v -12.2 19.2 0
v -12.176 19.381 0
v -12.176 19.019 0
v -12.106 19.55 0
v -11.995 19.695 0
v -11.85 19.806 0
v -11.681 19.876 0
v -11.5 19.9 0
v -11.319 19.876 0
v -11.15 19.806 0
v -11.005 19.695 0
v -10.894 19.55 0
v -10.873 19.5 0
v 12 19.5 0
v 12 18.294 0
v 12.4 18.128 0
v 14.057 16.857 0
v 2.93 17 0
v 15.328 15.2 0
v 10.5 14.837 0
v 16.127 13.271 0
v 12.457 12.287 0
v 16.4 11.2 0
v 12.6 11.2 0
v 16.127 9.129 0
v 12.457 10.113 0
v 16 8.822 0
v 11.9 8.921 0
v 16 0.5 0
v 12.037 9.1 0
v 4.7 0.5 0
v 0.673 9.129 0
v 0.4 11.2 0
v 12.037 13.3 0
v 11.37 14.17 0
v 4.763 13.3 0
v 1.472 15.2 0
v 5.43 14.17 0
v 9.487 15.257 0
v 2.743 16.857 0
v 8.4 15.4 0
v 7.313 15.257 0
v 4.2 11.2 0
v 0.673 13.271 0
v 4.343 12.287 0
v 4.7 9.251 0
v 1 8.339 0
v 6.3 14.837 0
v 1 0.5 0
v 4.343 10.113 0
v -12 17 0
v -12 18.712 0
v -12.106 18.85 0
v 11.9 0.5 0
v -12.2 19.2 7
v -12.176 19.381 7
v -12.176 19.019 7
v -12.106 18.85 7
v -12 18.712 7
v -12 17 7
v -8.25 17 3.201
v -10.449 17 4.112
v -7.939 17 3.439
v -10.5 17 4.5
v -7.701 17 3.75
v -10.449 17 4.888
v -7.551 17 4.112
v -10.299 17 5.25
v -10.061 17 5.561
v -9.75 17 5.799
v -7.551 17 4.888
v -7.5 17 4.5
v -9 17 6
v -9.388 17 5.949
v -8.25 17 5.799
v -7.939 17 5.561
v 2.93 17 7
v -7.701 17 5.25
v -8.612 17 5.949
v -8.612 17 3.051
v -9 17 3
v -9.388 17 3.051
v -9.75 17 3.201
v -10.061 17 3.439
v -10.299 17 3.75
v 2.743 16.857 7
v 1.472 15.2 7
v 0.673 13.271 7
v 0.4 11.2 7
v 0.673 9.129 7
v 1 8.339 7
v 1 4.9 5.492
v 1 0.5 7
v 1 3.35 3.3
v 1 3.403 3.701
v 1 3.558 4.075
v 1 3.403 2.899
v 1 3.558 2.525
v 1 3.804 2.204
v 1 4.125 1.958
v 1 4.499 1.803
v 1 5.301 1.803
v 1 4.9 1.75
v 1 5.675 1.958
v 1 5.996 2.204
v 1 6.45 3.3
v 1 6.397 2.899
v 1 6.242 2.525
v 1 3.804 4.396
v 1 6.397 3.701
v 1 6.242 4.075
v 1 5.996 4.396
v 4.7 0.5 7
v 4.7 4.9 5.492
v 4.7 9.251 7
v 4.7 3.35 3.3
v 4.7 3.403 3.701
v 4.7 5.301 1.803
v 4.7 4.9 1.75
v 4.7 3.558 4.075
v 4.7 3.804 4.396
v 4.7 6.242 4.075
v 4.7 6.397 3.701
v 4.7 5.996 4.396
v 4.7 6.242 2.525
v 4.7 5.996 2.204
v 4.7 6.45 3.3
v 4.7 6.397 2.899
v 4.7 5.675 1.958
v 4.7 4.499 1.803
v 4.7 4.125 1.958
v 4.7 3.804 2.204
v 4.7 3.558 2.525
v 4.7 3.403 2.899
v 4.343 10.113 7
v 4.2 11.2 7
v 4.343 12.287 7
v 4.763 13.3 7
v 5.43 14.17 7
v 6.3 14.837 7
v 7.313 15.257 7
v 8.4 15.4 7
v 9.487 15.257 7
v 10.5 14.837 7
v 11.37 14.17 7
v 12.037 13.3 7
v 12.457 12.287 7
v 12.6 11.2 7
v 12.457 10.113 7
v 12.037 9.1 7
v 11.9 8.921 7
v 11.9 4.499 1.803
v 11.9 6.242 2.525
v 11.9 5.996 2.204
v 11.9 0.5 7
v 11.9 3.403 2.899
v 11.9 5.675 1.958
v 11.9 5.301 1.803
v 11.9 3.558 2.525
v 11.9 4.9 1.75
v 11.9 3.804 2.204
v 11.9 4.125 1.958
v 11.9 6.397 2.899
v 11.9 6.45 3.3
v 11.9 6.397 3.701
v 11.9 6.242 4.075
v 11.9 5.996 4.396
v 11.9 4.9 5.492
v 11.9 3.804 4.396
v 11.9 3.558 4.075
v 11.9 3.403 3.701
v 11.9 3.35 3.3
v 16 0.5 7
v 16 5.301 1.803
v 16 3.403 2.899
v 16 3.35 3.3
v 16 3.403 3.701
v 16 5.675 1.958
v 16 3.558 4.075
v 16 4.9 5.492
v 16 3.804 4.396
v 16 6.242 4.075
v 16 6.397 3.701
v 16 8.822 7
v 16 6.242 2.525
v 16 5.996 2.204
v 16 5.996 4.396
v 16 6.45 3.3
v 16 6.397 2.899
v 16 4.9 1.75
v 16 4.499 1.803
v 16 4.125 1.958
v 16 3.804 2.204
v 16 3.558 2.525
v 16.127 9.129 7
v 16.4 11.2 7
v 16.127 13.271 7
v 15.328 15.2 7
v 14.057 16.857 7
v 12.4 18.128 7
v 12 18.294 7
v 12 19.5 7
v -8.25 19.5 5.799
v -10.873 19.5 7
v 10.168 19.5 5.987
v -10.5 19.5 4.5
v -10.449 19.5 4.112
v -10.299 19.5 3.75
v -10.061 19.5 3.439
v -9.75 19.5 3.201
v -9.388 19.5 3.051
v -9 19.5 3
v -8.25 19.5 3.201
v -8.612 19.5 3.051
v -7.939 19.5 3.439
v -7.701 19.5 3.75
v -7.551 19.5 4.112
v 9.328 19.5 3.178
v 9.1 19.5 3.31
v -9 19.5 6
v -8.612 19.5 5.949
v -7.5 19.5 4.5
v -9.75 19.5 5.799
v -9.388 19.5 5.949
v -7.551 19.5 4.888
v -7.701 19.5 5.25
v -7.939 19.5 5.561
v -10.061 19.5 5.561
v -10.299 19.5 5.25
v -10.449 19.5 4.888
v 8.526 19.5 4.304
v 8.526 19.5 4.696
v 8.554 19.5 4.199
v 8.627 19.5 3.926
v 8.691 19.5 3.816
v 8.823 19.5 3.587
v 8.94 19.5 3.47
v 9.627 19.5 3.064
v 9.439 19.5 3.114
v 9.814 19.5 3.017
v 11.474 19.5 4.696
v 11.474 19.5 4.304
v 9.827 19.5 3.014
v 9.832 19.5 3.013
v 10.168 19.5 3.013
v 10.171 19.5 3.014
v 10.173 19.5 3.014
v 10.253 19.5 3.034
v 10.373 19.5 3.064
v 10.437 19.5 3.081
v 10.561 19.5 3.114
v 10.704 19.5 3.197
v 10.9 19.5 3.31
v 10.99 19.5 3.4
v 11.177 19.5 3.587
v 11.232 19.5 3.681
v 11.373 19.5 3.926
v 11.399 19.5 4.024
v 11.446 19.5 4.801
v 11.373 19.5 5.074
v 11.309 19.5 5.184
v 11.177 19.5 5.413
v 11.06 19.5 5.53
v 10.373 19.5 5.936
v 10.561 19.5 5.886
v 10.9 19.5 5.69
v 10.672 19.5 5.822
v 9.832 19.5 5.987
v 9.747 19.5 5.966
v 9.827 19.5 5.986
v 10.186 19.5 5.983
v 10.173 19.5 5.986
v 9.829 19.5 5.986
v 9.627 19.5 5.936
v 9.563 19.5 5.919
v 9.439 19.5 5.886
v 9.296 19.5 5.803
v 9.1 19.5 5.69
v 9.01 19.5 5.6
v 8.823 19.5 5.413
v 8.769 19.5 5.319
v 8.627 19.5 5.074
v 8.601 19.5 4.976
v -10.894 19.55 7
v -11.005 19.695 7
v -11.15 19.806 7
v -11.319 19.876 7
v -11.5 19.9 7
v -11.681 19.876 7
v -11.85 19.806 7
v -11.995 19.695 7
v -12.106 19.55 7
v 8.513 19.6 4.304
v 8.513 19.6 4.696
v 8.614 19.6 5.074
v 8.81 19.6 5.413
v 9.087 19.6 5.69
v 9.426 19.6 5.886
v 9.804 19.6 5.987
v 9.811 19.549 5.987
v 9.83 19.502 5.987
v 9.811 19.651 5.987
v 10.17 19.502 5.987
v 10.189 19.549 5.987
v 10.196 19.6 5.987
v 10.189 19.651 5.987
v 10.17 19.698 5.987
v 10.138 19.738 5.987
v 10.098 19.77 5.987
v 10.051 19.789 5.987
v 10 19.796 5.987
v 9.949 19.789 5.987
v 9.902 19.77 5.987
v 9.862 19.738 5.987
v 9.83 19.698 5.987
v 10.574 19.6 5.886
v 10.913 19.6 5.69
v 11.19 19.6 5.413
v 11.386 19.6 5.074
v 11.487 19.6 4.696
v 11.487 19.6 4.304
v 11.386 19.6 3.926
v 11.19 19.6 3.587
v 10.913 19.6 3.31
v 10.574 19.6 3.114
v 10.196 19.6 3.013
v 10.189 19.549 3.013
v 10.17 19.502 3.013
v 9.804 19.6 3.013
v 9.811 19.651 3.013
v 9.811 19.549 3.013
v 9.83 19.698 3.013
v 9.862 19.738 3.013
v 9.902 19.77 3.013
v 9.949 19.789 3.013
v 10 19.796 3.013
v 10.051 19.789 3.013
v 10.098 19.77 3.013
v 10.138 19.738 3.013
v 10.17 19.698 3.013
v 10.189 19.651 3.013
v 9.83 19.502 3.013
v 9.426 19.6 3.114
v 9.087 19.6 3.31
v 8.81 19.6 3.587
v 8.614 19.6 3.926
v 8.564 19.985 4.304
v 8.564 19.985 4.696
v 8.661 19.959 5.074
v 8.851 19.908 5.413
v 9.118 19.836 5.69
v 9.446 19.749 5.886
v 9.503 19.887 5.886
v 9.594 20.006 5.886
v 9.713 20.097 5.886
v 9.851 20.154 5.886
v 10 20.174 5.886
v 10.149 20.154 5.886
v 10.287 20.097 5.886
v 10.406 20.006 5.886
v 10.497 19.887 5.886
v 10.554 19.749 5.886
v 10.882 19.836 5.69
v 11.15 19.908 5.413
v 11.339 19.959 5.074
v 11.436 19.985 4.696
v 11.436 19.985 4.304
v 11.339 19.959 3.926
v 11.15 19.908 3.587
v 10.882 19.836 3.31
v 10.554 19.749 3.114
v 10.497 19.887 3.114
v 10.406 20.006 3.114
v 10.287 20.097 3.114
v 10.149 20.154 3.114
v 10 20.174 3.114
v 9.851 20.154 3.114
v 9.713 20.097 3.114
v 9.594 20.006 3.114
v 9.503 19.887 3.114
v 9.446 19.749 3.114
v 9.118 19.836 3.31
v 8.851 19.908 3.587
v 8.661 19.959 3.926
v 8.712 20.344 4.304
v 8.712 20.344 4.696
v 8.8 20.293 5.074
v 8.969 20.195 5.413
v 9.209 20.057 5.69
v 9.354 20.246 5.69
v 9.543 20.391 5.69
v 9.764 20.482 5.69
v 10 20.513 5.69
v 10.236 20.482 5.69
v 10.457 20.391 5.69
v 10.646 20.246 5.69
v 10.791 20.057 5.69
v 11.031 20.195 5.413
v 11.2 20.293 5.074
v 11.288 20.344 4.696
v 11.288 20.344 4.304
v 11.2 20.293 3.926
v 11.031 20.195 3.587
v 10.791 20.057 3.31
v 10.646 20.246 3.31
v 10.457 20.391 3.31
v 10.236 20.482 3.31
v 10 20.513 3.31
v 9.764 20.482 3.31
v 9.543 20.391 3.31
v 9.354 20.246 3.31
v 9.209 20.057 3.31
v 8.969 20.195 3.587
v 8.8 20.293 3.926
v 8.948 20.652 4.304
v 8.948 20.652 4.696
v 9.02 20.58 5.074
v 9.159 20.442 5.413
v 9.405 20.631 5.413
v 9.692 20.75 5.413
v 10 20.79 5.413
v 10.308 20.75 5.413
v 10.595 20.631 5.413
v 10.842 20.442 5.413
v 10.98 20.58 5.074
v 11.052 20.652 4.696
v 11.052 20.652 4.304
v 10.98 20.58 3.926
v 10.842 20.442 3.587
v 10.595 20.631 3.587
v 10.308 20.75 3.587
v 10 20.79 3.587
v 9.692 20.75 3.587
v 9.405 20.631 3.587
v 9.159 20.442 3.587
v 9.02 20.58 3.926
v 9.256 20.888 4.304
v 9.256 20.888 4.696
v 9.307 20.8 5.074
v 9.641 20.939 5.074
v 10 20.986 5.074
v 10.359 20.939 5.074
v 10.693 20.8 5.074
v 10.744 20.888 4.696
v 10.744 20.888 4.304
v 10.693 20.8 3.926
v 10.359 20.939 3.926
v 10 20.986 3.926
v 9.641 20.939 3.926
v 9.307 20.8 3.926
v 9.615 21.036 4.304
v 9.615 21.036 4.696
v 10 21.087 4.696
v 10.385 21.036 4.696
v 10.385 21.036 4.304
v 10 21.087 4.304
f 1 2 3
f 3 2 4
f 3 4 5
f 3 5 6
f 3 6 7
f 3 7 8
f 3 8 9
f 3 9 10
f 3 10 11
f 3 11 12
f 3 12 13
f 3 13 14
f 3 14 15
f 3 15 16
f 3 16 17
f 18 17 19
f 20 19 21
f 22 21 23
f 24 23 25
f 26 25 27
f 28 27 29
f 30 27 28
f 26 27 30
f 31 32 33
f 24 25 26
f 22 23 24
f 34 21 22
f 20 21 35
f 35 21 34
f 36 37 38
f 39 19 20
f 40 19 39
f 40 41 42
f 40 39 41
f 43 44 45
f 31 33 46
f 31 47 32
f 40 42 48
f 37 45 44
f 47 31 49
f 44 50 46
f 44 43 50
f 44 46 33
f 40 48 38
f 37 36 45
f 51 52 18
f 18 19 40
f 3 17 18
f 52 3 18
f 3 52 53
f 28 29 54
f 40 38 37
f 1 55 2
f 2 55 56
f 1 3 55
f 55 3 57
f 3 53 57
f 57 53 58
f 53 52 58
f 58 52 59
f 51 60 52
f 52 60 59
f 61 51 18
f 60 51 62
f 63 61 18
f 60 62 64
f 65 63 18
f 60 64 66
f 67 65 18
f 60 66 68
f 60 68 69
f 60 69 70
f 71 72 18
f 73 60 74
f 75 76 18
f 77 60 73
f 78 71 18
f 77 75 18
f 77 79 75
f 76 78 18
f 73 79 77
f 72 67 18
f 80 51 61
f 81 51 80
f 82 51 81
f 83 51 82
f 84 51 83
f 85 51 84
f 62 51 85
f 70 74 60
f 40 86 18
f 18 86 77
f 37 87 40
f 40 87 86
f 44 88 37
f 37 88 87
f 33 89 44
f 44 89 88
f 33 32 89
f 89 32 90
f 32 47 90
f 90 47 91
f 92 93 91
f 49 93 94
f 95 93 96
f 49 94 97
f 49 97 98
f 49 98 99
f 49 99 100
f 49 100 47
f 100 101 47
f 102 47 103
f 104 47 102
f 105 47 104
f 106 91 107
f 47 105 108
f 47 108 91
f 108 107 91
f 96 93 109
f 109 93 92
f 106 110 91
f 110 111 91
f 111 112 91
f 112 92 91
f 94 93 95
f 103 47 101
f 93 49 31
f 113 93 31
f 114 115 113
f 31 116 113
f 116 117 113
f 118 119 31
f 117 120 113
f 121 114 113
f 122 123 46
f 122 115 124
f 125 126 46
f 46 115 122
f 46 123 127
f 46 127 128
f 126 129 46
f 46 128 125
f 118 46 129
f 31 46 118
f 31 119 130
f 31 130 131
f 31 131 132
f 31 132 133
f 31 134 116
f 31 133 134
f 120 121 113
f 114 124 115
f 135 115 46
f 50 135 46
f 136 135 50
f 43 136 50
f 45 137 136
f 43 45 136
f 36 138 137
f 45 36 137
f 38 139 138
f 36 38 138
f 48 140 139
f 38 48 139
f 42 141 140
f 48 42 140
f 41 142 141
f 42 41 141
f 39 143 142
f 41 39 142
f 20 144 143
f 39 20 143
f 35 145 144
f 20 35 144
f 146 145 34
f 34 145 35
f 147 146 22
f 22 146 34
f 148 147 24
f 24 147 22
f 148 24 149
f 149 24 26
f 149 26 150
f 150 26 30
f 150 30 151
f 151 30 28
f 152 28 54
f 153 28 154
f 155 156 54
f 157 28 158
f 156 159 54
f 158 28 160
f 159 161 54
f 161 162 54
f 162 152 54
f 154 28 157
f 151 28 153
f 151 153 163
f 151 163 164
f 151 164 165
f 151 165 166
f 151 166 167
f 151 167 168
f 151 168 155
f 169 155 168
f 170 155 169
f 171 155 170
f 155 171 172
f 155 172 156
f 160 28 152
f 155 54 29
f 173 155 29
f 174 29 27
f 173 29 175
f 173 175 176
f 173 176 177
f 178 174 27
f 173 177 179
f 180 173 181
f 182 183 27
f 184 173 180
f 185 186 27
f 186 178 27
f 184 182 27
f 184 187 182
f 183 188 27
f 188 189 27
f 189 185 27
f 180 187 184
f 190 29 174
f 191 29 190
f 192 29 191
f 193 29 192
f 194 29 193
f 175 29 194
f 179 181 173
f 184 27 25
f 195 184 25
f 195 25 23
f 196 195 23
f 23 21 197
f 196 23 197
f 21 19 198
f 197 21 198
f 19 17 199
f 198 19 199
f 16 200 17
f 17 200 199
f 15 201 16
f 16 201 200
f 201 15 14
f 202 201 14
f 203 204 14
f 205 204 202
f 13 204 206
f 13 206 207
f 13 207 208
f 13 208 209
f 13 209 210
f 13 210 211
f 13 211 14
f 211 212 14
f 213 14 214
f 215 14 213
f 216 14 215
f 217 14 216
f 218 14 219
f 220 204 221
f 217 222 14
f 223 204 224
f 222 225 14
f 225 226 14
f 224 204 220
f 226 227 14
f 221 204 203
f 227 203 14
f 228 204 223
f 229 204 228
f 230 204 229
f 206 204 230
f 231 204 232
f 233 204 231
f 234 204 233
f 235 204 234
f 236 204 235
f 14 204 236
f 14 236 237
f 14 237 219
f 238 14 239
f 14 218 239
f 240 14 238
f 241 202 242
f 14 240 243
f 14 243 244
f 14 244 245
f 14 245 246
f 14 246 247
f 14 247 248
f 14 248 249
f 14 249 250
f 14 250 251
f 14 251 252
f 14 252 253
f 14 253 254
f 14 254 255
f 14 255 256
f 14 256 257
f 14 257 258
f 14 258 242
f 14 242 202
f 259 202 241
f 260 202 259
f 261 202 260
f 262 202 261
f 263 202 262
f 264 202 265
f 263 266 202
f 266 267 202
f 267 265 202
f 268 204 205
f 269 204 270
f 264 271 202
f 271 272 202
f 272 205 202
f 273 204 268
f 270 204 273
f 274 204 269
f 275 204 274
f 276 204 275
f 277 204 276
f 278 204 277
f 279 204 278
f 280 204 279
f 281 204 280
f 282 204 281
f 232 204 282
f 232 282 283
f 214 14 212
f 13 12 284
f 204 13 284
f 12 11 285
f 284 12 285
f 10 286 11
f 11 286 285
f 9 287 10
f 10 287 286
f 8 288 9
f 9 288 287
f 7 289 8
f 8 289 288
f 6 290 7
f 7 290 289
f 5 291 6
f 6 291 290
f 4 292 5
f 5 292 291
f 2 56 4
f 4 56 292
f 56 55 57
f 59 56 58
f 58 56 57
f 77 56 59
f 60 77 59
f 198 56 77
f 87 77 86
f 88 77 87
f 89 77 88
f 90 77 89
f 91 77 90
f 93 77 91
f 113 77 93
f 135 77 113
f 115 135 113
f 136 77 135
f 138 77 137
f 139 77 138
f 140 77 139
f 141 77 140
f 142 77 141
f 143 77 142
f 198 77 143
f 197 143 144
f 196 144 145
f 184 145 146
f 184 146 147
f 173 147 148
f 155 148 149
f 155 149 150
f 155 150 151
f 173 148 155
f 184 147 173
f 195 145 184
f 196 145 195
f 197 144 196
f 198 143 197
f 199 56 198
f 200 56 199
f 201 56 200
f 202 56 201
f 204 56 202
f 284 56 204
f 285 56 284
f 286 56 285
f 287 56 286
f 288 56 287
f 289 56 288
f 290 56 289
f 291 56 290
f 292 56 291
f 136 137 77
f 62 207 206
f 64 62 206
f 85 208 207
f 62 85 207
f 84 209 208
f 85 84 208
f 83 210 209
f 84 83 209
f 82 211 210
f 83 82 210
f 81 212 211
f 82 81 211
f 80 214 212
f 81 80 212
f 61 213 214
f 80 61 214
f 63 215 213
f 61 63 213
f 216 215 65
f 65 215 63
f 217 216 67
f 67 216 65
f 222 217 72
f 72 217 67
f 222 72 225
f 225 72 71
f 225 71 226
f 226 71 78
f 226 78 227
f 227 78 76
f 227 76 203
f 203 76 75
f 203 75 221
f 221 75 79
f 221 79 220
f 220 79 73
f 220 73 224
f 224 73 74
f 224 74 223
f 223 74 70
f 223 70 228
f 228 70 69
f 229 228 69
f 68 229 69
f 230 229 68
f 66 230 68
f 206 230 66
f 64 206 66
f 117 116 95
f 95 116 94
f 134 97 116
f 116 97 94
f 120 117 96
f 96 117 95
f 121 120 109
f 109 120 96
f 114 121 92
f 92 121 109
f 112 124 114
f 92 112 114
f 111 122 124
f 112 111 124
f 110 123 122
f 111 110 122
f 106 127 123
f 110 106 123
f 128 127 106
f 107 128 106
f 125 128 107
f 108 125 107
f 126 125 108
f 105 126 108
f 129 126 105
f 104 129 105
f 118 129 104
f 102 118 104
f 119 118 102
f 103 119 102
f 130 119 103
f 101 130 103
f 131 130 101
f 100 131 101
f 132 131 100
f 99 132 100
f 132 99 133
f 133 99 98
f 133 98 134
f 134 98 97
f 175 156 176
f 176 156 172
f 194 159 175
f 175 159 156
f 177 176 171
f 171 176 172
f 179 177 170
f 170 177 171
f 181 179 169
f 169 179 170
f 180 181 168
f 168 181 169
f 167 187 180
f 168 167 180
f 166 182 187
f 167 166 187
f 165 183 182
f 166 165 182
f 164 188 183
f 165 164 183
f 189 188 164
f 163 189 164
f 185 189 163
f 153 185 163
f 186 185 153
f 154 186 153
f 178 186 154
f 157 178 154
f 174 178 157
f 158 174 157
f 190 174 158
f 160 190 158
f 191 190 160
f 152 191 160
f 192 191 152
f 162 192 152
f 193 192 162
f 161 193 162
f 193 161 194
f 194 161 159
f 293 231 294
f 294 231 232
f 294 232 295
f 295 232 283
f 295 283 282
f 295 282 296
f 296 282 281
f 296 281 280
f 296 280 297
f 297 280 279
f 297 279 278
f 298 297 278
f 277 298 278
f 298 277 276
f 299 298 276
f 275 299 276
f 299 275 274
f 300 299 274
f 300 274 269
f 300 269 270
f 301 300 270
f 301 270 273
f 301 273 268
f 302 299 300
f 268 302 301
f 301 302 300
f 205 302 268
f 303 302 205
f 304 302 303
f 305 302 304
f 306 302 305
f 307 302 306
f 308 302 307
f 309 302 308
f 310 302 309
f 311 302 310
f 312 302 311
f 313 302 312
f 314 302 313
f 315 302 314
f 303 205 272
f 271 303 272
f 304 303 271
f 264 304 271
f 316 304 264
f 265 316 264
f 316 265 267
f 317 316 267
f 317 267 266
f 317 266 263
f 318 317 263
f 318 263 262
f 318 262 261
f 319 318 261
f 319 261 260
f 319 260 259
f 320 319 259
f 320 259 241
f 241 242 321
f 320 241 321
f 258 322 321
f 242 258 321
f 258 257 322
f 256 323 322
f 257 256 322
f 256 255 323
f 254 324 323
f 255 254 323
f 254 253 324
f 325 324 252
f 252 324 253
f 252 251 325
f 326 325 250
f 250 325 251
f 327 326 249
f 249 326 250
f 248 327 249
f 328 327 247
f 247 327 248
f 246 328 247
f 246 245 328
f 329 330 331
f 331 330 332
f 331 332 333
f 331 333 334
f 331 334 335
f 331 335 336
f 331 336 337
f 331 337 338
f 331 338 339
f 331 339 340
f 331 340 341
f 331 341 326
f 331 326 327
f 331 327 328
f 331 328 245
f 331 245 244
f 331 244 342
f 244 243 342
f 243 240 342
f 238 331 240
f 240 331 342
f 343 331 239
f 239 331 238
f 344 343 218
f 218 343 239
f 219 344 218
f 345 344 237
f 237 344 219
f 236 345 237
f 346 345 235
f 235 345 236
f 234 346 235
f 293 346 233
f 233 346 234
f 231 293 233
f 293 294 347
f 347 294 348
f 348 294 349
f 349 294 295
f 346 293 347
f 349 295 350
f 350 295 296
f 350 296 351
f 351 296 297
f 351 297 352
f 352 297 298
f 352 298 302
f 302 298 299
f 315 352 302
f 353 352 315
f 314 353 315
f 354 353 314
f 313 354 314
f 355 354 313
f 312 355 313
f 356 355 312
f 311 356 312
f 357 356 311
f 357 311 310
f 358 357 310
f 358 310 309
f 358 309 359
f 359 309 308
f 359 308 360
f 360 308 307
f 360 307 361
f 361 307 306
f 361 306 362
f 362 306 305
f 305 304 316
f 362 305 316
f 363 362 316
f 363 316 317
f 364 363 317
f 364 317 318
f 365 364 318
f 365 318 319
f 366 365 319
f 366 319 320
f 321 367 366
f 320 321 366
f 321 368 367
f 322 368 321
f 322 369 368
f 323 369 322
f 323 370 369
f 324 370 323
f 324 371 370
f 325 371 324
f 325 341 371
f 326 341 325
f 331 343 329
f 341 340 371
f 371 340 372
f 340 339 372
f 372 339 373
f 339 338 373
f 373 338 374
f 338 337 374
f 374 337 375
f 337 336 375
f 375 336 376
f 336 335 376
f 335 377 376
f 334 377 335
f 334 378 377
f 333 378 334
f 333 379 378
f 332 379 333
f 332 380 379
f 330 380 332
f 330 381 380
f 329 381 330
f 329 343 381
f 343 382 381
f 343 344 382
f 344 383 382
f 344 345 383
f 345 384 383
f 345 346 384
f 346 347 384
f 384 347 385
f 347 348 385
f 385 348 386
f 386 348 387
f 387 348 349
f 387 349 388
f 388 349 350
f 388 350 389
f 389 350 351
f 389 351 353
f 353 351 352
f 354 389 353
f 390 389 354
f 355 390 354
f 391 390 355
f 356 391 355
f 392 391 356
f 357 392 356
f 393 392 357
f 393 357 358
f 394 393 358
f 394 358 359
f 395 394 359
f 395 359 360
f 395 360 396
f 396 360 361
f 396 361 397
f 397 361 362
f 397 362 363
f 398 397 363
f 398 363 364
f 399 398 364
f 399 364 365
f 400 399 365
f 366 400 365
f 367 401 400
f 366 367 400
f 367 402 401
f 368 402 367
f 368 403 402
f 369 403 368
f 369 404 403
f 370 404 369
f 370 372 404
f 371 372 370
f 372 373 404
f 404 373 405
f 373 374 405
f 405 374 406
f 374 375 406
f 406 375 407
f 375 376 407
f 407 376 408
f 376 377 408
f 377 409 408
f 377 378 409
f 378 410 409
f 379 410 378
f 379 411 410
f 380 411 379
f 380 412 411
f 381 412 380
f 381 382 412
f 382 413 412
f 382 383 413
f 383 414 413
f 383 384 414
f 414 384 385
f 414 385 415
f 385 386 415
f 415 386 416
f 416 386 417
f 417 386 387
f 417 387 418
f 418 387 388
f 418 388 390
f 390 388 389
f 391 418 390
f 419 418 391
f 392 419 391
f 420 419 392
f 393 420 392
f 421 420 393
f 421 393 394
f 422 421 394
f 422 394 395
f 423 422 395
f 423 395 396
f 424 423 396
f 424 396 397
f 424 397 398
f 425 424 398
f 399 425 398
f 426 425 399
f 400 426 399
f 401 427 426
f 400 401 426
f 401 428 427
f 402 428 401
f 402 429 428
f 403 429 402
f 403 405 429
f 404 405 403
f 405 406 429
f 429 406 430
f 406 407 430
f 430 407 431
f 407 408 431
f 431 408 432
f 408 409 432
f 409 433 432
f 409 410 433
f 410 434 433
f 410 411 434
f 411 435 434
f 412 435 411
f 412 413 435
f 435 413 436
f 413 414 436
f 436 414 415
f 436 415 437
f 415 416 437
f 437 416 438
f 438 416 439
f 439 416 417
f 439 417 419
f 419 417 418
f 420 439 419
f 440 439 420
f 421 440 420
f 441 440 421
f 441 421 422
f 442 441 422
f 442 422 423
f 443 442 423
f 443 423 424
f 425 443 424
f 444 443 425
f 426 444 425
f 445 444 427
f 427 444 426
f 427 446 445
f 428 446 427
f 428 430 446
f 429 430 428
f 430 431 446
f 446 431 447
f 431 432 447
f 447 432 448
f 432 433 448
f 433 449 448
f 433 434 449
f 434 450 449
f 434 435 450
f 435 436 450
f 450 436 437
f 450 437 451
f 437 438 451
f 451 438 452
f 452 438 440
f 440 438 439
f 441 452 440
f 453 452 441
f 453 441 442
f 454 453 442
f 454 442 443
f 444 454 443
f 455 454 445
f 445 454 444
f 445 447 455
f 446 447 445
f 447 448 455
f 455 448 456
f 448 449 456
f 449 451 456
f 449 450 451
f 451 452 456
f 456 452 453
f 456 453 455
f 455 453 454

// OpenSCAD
// Makerbot end stop mount for M8 rods by Patrick Sapinski
// V1.0
// with code from printrbot Y axis bar end with end-stop trigger by clayb.rpi@gmail.com

$fn=24;

module tear(r, h) {
  union() {
    cylinder(r=r, h=h);
    rotate([0, 0, 135]) cube([r, r, h]);
  }
}

difference() {
  union() {
		translate([1,.5,0])
		cube([15, 11.2, 7]);

		translate([-12, 17, 0])
		cube([24, 2.5, 7]);

		translate([-11.5, 19.2, 0])
		cylinder(r=.7, h=7);

		translate([10,19.6, 4.5])
		sphere(r=3/2);

		translate([8.4, 11.2, 0])
		cylinder(r=16 / 2, h=7);
  }

	translate([-0.1, 4.9, 3.3])
	rotate([0, 90, 0])
	tear(r=3.1 / 2, h=23);

	translate([8.4, 11.2, -1])
	cylinder(r=4.2, h=10);

	translate([4.7, -1, -1])
	cube([7.2, 11.2, 10]);

		translate([-9, 21, 4.5])
		rotate([90, 0, 0])
		cylinder(r=3/2, h=9);

  translate([3.9, -5, -1])
  cylinder(r=1.5, h=6);
}
